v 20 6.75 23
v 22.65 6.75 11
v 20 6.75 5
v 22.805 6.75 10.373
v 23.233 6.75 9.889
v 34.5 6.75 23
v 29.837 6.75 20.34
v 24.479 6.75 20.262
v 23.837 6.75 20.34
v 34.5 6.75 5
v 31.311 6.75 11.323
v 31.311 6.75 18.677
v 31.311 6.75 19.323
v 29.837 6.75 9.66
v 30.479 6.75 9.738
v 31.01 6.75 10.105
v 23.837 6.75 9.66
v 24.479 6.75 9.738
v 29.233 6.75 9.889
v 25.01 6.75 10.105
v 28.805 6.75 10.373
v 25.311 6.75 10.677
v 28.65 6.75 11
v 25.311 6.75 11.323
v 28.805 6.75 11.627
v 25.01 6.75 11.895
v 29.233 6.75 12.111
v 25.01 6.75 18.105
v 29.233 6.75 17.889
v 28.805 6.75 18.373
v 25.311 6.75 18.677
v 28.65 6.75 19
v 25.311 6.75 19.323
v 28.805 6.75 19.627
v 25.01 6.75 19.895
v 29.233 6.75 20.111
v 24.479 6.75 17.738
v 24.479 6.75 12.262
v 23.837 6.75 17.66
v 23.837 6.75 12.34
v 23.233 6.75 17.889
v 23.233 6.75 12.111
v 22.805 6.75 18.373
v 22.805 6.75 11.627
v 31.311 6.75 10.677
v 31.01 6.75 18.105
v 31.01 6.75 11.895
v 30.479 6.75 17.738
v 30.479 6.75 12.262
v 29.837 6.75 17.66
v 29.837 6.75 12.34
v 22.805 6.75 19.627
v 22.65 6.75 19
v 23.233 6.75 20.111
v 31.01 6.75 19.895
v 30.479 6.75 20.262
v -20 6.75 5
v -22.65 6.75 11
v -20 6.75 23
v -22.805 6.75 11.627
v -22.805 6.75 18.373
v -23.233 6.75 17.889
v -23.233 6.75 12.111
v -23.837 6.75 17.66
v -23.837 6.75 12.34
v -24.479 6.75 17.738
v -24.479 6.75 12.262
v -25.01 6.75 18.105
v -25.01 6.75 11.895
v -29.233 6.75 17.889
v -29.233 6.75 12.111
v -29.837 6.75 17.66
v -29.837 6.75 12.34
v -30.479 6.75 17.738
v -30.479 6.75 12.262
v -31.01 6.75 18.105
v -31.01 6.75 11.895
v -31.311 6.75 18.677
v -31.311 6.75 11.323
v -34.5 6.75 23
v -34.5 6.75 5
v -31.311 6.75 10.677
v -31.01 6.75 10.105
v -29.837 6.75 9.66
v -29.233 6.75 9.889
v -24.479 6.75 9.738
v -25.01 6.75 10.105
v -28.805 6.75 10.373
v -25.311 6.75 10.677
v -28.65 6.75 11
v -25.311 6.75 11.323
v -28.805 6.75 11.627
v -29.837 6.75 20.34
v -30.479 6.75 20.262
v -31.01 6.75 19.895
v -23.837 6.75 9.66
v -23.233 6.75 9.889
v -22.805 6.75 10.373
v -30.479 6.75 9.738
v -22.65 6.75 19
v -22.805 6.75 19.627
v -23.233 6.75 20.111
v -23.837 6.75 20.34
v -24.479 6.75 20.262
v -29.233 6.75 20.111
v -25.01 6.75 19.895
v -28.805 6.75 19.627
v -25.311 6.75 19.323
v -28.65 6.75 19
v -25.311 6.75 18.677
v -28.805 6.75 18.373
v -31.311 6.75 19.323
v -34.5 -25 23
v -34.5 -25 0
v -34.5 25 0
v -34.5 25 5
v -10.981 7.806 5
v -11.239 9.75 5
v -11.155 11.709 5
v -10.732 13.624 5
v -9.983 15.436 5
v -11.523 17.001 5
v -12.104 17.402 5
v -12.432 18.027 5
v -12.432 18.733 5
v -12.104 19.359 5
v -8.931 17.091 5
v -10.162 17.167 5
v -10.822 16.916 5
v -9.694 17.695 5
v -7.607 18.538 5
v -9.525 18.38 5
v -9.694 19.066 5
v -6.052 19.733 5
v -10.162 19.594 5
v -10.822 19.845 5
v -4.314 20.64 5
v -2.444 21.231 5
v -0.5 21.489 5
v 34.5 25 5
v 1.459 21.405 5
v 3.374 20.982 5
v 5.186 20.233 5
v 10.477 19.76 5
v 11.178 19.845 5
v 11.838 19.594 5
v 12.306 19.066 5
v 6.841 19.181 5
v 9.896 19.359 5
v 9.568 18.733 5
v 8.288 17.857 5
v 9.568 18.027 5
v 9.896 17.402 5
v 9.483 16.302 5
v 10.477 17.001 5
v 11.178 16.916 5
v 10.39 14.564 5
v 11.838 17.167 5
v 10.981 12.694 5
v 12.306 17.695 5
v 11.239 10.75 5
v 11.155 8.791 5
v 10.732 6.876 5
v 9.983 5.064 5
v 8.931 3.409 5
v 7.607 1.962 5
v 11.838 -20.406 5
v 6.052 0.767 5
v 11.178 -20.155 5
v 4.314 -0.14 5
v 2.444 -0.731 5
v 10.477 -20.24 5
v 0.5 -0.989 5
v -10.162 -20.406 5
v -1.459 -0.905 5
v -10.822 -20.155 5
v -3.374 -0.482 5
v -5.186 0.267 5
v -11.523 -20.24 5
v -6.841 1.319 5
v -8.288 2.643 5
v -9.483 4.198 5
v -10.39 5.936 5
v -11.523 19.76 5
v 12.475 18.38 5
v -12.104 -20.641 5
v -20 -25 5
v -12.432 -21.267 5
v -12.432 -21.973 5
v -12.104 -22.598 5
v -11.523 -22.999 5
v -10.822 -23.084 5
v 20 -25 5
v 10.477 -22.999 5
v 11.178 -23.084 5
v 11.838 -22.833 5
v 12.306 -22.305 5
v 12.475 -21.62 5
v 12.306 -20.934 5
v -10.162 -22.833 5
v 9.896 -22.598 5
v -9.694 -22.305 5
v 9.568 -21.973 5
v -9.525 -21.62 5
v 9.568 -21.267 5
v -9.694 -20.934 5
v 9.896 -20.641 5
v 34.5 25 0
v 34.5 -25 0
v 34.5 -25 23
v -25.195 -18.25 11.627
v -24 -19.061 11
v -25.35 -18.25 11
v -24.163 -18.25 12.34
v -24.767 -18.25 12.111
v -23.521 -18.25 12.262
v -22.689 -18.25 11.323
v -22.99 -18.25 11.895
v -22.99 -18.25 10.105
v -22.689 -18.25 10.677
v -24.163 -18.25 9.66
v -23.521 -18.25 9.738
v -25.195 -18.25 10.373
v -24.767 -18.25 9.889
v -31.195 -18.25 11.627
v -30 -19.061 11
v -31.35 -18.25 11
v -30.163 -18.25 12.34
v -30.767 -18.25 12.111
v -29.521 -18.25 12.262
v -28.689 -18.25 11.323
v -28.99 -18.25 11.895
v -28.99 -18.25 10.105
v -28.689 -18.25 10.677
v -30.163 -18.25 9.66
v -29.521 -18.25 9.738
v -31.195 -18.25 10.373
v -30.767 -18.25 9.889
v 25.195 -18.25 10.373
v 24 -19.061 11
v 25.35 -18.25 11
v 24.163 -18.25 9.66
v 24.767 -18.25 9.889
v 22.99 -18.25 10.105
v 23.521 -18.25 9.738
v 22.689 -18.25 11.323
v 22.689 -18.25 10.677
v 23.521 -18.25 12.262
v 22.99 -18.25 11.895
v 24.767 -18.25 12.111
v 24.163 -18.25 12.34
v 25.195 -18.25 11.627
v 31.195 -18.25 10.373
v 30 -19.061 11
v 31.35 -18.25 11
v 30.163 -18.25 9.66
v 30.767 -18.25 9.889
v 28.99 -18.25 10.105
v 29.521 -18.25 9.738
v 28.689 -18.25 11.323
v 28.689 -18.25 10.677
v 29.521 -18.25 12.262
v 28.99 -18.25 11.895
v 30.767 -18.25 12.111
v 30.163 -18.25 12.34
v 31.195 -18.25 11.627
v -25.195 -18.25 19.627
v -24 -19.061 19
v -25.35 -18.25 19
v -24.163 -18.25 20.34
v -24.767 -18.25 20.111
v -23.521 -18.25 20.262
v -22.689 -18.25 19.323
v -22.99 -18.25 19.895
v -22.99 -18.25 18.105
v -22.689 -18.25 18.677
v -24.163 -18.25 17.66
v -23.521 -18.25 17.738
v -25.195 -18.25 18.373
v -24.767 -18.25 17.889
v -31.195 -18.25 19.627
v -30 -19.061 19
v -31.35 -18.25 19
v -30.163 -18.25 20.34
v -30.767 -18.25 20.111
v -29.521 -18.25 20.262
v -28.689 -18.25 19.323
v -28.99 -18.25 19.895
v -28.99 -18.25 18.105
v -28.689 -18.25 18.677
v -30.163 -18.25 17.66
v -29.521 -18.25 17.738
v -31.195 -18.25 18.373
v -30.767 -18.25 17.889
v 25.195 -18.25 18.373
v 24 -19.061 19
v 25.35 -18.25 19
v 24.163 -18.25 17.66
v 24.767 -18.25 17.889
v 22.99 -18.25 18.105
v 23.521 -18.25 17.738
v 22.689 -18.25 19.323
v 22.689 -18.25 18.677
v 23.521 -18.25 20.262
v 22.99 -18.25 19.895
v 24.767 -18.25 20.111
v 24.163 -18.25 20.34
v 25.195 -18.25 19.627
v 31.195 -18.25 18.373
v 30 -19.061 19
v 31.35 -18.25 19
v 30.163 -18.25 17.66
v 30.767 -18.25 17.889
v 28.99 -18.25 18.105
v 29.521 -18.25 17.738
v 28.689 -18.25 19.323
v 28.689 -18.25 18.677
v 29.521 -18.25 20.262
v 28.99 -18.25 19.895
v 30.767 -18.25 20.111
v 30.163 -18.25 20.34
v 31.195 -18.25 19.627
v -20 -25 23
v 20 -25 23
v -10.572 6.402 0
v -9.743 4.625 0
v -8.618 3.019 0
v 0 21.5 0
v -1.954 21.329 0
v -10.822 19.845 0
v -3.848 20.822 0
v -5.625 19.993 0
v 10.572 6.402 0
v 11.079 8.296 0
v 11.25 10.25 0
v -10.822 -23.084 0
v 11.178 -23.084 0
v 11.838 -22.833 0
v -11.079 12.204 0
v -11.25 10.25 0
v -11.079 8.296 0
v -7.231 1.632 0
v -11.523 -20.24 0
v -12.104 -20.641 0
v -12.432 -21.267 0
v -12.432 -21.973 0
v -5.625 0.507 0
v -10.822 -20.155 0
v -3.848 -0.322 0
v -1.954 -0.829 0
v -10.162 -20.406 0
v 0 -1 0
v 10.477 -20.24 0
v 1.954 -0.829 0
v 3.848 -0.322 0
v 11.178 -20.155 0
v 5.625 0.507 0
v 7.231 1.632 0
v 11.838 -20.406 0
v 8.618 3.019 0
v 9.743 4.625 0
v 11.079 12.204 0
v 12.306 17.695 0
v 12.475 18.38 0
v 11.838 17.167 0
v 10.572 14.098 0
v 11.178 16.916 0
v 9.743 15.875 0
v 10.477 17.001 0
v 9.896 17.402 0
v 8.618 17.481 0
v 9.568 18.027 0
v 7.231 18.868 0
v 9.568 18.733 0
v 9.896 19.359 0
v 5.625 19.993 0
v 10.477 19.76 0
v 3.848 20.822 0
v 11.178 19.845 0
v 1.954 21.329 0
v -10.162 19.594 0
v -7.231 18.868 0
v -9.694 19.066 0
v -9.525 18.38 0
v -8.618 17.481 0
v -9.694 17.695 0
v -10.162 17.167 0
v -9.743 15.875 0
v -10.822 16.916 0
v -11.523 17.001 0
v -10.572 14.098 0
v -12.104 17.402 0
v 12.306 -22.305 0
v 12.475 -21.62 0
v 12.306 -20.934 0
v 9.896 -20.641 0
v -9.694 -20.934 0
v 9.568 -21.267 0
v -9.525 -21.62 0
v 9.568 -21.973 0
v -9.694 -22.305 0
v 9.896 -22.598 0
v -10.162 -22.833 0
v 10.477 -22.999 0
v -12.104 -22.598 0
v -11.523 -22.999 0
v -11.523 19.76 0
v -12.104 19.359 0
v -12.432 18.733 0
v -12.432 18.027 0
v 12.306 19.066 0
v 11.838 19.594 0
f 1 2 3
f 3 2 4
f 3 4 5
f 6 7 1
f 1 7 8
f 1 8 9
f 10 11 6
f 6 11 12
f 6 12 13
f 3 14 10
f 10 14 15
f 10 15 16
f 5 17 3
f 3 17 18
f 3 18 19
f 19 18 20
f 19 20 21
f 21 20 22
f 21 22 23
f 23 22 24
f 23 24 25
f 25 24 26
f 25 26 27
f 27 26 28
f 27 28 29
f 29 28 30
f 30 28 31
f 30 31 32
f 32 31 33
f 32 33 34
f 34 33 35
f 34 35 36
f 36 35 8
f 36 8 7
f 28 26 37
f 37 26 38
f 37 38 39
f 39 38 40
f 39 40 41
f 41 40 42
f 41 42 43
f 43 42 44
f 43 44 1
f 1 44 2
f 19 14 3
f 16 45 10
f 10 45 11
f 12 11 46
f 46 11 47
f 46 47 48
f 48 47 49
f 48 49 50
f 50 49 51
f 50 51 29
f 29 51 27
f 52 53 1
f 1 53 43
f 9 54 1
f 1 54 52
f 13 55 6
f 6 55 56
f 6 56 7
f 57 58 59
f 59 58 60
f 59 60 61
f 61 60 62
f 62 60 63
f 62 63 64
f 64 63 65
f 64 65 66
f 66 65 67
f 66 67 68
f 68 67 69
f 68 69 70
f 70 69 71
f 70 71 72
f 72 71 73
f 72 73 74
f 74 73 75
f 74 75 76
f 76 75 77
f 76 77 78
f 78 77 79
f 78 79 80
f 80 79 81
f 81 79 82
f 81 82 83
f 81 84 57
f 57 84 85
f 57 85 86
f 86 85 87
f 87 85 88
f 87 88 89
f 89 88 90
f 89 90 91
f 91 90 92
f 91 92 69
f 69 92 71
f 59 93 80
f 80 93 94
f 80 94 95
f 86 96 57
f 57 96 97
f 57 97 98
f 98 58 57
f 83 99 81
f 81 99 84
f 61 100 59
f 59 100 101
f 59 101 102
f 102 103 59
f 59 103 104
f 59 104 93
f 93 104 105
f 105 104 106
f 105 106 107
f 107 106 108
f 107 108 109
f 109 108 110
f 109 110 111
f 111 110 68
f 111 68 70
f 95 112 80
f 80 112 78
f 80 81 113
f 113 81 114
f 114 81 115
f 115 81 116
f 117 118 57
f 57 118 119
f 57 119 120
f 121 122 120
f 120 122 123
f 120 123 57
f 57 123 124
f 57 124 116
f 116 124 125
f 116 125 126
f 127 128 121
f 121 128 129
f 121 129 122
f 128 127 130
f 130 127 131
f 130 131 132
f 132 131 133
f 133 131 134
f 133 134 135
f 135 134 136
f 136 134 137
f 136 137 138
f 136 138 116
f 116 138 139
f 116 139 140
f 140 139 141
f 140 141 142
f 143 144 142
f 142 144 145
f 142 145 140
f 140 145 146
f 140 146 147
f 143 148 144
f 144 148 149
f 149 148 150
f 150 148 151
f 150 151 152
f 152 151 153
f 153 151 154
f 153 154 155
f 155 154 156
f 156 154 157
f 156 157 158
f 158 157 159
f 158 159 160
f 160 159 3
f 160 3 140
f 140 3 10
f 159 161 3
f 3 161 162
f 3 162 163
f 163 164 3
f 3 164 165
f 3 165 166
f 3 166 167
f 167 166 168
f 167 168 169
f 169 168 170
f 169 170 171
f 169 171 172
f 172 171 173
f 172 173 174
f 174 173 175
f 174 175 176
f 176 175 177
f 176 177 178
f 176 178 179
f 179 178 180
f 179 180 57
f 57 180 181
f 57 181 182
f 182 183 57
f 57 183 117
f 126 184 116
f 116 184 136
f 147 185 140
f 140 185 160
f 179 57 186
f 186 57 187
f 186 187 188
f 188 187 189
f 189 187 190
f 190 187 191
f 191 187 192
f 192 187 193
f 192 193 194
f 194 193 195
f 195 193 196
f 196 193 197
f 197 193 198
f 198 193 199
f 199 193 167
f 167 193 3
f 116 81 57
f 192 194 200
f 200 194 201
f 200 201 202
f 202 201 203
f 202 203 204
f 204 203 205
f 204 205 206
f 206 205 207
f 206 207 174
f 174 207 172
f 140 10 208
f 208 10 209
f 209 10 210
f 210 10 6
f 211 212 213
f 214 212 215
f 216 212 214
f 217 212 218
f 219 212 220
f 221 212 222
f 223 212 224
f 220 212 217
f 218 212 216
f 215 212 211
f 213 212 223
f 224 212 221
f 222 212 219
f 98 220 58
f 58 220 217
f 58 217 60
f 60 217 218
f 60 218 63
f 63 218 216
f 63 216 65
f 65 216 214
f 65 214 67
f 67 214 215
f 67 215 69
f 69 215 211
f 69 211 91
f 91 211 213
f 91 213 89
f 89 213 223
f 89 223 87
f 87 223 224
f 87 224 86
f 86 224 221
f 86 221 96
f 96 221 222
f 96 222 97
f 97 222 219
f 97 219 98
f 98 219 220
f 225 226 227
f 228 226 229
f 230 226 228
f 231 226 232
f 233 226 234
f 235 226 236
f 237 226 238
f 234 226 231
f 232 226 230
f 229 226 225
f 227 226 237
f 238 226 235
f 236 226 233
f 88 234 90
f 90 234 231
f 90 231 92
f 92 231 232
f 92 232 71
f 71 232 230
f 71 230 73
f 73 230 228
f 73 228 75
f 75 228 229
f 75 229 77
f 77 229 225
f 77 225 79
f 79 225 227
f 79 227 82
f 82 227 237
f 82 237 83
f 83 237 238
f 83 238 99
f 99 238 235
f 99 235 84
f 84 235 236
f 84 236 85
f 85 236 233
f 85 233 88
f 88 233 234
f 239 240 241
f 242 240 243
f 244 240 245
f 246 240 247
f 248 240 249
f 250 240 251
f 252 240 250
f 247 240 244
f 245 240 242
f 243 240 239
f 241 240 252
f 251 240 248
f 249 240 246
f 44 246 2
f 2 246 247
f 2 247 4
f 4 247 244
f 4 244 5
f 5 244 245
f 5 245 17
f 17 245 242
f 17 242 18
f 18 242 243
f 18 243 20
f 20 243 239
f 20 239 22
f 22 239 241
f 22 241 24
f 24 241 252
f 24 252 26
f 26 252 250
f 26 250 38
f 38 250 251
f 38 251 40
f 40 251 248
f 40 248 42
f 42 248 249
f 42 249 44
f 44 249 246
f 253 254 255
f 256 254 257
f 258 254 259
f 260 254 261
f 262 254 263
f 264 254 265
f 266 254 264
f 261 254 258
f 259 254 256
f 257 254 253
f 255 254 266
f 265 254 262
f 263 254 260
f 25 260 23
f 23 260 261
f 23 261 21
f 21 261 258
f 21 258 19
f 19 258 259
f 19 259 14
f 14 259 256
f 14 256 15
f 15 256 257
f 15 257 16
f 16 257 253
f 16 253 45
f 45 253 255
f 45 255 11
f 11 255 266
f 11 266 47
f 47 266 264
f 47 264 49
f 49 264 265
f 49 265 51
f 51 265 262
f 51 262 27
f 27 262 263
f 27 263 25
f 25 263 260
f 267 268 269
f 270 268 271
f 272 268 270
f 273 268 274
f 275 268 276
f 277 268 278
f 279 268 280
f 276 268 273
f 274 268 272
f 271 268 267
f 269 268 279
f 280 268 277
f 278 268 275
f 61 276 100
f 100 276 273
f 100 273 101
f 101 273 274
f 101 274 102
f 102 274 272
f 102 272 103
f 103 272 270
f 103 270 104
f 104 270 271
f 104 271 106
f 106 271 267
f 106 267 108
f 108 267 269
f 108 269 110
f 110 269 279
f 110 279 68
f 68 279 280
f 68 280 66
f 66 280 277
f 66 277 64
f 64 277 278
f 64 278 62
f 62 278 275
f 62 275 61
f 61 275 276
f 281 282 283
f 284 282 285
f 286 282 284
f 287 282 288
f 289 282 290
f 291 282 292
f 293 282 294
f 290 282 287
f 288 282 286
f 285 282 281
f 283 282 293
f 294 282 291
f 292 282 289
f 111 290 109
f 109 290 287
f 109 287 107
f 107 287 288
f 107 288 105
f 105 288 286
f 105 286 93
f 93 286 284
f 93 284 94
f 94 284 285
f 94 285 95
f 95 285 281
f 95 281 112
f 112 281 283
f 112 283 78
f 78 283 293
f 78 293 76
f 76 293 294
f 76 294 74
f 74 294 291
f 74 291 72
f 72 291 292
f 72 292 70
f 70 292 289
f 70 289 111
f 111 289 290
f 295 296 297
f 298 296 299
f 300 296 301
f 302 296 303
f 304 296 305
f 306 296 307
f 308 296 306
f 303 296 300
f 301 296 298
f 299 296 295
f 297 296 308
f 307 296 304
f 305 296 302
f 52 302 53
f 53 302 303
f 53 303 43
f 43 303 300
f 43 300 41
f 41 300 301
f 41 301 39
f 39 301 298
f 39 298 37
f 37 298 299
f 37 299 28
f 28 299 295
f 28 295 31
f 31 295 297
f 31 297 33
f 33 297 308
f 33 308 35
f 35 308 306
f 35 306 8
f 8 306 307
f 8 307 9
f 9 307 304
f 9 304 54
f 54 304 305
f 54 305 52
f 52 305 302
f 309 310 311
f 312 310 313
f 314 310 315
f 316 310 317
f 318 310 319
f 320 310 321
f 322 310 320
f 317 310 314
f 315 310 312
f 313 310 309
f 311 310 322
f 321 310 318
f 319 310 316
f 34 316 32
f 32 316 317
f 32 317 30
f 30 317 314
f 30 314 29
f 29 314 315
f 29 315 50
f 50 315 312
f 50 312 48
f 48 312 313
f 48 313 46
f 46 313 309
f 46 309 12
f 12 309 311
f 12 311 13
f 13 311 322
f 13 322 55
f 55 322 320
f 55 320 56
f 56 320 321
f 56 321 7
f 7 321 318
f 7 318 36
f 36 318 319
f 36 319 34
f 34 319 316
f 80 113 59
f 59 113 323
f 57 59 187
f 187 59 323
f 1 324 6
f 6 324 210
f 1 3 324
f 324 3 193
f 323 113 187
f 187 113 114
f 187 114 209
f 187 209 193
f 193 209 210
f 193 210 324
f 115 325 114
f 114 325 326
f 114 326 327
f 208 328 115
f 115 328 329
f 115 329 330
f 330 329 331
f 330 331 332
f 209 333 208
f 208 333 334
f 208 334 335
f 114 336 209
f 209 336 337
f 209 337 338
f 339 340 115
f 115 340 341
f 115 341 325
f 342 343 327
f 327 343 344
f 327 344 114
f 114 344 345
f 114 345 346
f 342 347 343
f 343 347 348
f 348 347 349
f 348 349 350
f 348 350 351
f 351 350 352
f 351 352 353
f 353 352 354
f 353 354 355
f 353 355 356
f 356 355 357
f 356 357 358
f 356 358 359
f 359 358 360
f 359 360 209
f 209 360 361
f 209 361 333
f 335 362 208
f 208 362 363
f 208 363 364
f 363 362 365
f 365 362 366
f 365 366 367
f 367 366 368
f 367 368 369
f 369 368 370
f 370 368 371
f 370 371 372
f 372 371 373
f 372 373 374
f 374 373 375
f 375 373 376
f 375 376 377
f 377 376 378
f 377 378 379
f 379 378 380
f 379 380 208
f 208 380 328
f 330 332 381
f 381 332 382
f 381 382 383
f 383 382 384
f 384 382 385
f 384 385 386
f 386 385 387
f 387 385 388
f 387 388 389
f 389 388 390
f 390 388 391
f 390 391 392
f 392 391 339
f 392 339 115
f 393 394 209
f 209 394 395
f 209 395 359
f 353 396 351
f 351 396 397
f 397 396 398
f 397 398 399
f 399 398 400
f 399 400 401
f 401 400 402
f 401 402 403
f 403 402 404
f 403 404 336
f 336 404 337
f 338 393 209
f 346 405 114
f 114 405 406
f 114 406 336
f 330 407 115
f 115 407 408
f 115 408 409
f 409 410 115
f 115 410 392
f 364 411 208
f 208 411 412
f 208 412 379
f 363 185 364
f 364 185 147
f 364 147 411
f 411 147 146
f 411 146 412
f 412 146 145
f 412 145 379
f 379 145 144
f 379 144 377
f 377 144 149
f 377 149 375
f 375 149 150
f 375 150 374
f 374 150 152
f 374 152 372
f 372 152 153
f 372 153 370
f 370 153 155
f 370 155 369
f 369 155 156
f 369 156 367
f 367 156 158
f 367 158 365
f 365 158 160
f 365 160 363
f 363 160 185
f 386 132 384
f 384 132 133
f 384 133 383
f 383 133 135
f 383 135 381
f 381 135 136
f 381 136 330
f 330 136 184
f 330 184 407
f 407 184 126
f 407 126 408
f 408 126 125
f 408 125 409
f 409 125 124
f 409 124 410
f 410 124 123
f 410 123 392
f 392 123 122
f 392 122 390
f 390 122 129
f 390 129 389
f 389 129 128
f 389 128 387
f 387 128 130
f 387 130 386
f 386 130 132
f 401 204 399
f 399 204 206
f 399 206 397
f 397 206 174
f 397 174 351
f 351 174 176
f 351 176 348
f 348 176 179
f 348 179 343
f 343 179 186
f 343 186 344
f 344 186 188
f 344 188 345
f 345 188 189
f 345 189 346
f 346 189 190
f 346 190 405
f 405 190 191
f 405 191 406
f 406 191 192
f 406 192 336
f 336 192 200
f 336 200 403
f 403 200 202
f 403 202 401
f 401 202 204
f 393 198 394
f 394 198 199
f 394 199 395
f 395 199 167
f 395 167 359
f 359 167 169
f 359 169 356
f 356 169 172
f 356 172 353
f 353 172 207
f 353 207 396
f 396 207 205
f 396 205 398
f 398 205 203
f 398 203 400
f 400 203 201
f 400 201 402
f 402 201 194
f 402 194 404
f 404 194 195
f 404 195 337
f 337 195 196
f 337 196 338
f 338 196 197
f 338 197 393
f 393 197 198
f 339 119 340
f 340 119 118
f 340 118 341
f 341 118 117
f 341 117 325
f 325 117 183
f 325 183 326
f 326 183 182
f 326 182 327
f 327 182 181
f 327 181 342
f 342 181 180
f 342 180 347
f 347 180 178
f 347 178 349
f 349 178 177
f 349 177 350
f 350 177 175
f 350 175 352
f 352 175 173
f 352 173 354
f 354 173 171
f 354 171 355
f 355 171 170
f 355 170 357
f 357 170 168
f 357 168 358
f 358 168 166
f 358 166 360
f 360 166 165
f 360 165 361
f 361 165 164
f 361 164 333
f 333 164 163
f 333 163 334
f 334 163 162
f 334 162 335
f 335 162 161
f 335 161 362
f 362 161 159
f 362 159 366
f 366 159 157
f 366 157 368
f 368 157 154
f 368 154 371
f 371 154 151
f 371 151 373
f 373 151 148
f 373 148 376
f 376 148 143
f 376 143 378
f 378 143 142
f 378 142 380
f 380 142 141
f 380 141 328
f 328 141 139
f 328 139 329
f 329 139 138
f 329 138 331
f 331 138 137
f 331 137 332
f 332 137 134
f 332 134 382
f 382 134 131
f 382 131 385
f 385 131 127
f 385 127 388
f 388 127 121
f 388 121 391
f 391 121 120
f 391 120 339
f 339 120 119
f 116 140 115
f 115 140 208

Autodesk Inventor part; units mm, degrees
ref_plane "YZ Plane" through (0, 0, 0) normal (1, 0, 0) x (0, 1, 0)
ref_plane "XZ Plane" through (0, 0, 0) normal (0, 1, 0) x (-1, 0, 0)
ref_plane "XY Plane" through (0, 0, 0) normal (0, 0, 1) x (1, 0, 0)
sketch "Sketch1" plane through (0, 0, 0) normal (0, 0, 1) x (1, 0, 0)
  line L0 (0, 0) -> (36, 0)
  line L1 (36, 0) -> (36, 25)
  line L2 (36, 25) -> (-36, 25)
  line L3 (-36, 25) -> (-36, -25)
  line L4 (-36, -25) -> (36, -25)
  line L5 (36, -25) -> (36, 25)
  dimension "d0" = 36
  dimension "d1" = 25
  dimension "d2" = 72
  dimension "d3" = 50
extrude "Extrusion1" add sketch "Sketch1" along normal blind 5
sketch "Sketch2" plane through (0, 0, 5) normal (0, 0, 1) x (1, 0, 0)
  line L0 (0, 0) -> (0, -25)
  line L1 (-36, -25) -> (36, -25) projected
  line L2 (0, -25) -> (0, 10.25)
  circle A0 centre (0, 10.25) radius 11.25
  dimension "d6" = 35.25
  dimension "d7" = 22.5
extrude "Extrusion2" cut sketch "Sketch2" against normal blind 22.5
sketch "Sketch3" plane through (0, 0, 5) normal (0, 0, 1) x (1, 0, 0)
  line L0 (0, 0) -> (11, 0)
  line L1 (11, -24.8696) -> (11, -21.6196)
  circle A0 centre (11, -21.6196) radius 1.475
  line L2 (0, 0) -> (0, -3.6992)
  circle A1 centre (-11, -21.6196) radius 1.475
  line L3 (11, -21.6196) -> (11, 18.3804)
  line L4 (11, -21.6196) -> (11, -1.6196)
  line L5 (11, -1.6196) -> (-3.4092, -1.6196)
  circle A2 centre (11, 18.3804) radius 1.475
  circle A3 centre (-11, 18.3804) radius 1.475
  point P0 (0, -1.6196)
  point P1 (11, -20.1446)
  point P2 (11, -23.0946)
  dimension "d10" = 11
  dimension "d11" = 3.25
  dimension "d12" = 2.95
  dimension "d15" = 40
  dimension "d16" = 20
extrude "Extrusion3" cut sketch "Sketch3" against normal blind 5 contours A0 L1 L3 | L3 L1 A0 | A1
sketch "Sketch4" plane through (0, 0, 5) normal (0, 0, 1) x (1, 0, 0)
  point P0 (0, 0)
extrude "Extrusion4" cut sketch "Sketch3" against normal blind 5 contours A2 | A3
sketch "Sketch5" plane through (36, -25, 0) normal (1, 0, 0) x (0, 0, -1)
  line L0 (0, 0) -> (0, 50) projected
  line L1 (-5, 0) -> (-5, 50) projected
  line L2 (0, 0) -> (-5, 0)
  line L3 (-5, 0) -> (-5, 50)
  line L4 (-5, 50) -> (0, 50)
  line L5 (0, 50) -> (0, 0)
  point P0 (0, 25)
  dimension "d19" = 5
ref_plane "Work Plane1" through (0, -25, 0) normal (1, 0, 0) x (0, 0, -1)
extrude "Extrusion5" cut sketch "Sketch5" against normal blind 1.5
mirror "Mirror1" about plane through (0, -25, 0) normal (1, 0, 0) of "Extrusion5"
sketch "Sketch6" plane through (34.5, -25, 0) normal (1, 0, 0) x (0, 0, -1)
  line L0 (-5, 0) -> (0, 0) projected
  line L1 (-5, 0) -> (-23, 0)
  line L2 (-23, 0) -> (-23, 34.75)
  line L3 (-23, 34.75) -> (-5, 34.75)
  line L4 (-5, 50) -> (-5, 0) projected
  line L5 (-5, 34.75) -> (-5, 0)
  point P0 (0, 25)
  dimension "d22" = 18
  dimension "d23" = 34.75
  dimension "d24" = 18
extrude "Extrusion6" add sketch "Sketch6" against normal blind 14.5
mirror "Mirror2" about plane through (0, -25, 0) normal (1, 0, 0) of "Extrusion6"
sketch "Sketch7" plane through (34.5, 9.75, 23) normal (0, 1, 0) x (1, 0, 0)
  line L0 (0, 0) -> (-14.5, 0) projected
  line L1 (0, 18) -> (0, 23) projected
  line L2 (0, 0) -> (0, 18)
  line L3 (0, 18) -> (0, 4)
  line L4 (0, 23) -> (0, 0) projected
  point P0 (-34.5, 23)
  point P1 (-10.5, 4)
  point P2 (-4.5, 4)
hole "Hole1" at (24, 9.75, 19) at (30, 9.75, 19) direction (0, -1, 0) diameter 2.7 depth 28 tip angle 118
mirror "Mirror3" about plane through (0, -25, 0) normal (1, 0, 0) of "Hole1"
sketch "Sketch8" plane through (34.5, 9.75, 23) normal (0, 1, 0) x (1, 0, 0)
  line L0 (0, 23) -> (0, 0) projected
  line L1 (0, 0) -> (0, 4)
  line L2 (0, 4) -> (-4.5, 4)
  line L3 (-4.5, 4) -> (-4.5, 12)
  line L4 (-4.5, 12) -> (-10.5, 12)
  point P0 (-34.5, 23)
  dimension "d45" = 4
  dimension "d46" = 4.5
  dimension "d47" = 8
  dimension "d48" = 6
hole "Hole2" at (24, 9.75, 11) at (30, 9.75, 11) direction (0, -1, 0) diameter 2.7 depth 28 tip angle 118
mirror "Mirror4" about plane through (0, -25, 0) normal (1, 0, 0) of "Hole2"
sketch "Sketch9" plane through (-34.5, 9.75, 23) normal (0, 1, 0) x (1, 0, 0)
  line L0 (0, 0) -> (14.5, 0) projected
  line L1 (0, 0) -> (74.2049, 0)
  line L2 (74.2049, 0) -> (74.2049, 18)
  line L3 (74.2049, 18) -> (0, 18)
  line L4 (0, 18) -> (0, 0)
  point P0 (34.5, 23)
extrude "Extrusion7" cut sketch "Sketch9" against normal blind 3
ref_plane "Work Plane2" through (0, -25, 0) normal (1, 0, 0) x (0, 0, -1)
equation "\"d8\" = d7"
properties part number "Front_plate"
